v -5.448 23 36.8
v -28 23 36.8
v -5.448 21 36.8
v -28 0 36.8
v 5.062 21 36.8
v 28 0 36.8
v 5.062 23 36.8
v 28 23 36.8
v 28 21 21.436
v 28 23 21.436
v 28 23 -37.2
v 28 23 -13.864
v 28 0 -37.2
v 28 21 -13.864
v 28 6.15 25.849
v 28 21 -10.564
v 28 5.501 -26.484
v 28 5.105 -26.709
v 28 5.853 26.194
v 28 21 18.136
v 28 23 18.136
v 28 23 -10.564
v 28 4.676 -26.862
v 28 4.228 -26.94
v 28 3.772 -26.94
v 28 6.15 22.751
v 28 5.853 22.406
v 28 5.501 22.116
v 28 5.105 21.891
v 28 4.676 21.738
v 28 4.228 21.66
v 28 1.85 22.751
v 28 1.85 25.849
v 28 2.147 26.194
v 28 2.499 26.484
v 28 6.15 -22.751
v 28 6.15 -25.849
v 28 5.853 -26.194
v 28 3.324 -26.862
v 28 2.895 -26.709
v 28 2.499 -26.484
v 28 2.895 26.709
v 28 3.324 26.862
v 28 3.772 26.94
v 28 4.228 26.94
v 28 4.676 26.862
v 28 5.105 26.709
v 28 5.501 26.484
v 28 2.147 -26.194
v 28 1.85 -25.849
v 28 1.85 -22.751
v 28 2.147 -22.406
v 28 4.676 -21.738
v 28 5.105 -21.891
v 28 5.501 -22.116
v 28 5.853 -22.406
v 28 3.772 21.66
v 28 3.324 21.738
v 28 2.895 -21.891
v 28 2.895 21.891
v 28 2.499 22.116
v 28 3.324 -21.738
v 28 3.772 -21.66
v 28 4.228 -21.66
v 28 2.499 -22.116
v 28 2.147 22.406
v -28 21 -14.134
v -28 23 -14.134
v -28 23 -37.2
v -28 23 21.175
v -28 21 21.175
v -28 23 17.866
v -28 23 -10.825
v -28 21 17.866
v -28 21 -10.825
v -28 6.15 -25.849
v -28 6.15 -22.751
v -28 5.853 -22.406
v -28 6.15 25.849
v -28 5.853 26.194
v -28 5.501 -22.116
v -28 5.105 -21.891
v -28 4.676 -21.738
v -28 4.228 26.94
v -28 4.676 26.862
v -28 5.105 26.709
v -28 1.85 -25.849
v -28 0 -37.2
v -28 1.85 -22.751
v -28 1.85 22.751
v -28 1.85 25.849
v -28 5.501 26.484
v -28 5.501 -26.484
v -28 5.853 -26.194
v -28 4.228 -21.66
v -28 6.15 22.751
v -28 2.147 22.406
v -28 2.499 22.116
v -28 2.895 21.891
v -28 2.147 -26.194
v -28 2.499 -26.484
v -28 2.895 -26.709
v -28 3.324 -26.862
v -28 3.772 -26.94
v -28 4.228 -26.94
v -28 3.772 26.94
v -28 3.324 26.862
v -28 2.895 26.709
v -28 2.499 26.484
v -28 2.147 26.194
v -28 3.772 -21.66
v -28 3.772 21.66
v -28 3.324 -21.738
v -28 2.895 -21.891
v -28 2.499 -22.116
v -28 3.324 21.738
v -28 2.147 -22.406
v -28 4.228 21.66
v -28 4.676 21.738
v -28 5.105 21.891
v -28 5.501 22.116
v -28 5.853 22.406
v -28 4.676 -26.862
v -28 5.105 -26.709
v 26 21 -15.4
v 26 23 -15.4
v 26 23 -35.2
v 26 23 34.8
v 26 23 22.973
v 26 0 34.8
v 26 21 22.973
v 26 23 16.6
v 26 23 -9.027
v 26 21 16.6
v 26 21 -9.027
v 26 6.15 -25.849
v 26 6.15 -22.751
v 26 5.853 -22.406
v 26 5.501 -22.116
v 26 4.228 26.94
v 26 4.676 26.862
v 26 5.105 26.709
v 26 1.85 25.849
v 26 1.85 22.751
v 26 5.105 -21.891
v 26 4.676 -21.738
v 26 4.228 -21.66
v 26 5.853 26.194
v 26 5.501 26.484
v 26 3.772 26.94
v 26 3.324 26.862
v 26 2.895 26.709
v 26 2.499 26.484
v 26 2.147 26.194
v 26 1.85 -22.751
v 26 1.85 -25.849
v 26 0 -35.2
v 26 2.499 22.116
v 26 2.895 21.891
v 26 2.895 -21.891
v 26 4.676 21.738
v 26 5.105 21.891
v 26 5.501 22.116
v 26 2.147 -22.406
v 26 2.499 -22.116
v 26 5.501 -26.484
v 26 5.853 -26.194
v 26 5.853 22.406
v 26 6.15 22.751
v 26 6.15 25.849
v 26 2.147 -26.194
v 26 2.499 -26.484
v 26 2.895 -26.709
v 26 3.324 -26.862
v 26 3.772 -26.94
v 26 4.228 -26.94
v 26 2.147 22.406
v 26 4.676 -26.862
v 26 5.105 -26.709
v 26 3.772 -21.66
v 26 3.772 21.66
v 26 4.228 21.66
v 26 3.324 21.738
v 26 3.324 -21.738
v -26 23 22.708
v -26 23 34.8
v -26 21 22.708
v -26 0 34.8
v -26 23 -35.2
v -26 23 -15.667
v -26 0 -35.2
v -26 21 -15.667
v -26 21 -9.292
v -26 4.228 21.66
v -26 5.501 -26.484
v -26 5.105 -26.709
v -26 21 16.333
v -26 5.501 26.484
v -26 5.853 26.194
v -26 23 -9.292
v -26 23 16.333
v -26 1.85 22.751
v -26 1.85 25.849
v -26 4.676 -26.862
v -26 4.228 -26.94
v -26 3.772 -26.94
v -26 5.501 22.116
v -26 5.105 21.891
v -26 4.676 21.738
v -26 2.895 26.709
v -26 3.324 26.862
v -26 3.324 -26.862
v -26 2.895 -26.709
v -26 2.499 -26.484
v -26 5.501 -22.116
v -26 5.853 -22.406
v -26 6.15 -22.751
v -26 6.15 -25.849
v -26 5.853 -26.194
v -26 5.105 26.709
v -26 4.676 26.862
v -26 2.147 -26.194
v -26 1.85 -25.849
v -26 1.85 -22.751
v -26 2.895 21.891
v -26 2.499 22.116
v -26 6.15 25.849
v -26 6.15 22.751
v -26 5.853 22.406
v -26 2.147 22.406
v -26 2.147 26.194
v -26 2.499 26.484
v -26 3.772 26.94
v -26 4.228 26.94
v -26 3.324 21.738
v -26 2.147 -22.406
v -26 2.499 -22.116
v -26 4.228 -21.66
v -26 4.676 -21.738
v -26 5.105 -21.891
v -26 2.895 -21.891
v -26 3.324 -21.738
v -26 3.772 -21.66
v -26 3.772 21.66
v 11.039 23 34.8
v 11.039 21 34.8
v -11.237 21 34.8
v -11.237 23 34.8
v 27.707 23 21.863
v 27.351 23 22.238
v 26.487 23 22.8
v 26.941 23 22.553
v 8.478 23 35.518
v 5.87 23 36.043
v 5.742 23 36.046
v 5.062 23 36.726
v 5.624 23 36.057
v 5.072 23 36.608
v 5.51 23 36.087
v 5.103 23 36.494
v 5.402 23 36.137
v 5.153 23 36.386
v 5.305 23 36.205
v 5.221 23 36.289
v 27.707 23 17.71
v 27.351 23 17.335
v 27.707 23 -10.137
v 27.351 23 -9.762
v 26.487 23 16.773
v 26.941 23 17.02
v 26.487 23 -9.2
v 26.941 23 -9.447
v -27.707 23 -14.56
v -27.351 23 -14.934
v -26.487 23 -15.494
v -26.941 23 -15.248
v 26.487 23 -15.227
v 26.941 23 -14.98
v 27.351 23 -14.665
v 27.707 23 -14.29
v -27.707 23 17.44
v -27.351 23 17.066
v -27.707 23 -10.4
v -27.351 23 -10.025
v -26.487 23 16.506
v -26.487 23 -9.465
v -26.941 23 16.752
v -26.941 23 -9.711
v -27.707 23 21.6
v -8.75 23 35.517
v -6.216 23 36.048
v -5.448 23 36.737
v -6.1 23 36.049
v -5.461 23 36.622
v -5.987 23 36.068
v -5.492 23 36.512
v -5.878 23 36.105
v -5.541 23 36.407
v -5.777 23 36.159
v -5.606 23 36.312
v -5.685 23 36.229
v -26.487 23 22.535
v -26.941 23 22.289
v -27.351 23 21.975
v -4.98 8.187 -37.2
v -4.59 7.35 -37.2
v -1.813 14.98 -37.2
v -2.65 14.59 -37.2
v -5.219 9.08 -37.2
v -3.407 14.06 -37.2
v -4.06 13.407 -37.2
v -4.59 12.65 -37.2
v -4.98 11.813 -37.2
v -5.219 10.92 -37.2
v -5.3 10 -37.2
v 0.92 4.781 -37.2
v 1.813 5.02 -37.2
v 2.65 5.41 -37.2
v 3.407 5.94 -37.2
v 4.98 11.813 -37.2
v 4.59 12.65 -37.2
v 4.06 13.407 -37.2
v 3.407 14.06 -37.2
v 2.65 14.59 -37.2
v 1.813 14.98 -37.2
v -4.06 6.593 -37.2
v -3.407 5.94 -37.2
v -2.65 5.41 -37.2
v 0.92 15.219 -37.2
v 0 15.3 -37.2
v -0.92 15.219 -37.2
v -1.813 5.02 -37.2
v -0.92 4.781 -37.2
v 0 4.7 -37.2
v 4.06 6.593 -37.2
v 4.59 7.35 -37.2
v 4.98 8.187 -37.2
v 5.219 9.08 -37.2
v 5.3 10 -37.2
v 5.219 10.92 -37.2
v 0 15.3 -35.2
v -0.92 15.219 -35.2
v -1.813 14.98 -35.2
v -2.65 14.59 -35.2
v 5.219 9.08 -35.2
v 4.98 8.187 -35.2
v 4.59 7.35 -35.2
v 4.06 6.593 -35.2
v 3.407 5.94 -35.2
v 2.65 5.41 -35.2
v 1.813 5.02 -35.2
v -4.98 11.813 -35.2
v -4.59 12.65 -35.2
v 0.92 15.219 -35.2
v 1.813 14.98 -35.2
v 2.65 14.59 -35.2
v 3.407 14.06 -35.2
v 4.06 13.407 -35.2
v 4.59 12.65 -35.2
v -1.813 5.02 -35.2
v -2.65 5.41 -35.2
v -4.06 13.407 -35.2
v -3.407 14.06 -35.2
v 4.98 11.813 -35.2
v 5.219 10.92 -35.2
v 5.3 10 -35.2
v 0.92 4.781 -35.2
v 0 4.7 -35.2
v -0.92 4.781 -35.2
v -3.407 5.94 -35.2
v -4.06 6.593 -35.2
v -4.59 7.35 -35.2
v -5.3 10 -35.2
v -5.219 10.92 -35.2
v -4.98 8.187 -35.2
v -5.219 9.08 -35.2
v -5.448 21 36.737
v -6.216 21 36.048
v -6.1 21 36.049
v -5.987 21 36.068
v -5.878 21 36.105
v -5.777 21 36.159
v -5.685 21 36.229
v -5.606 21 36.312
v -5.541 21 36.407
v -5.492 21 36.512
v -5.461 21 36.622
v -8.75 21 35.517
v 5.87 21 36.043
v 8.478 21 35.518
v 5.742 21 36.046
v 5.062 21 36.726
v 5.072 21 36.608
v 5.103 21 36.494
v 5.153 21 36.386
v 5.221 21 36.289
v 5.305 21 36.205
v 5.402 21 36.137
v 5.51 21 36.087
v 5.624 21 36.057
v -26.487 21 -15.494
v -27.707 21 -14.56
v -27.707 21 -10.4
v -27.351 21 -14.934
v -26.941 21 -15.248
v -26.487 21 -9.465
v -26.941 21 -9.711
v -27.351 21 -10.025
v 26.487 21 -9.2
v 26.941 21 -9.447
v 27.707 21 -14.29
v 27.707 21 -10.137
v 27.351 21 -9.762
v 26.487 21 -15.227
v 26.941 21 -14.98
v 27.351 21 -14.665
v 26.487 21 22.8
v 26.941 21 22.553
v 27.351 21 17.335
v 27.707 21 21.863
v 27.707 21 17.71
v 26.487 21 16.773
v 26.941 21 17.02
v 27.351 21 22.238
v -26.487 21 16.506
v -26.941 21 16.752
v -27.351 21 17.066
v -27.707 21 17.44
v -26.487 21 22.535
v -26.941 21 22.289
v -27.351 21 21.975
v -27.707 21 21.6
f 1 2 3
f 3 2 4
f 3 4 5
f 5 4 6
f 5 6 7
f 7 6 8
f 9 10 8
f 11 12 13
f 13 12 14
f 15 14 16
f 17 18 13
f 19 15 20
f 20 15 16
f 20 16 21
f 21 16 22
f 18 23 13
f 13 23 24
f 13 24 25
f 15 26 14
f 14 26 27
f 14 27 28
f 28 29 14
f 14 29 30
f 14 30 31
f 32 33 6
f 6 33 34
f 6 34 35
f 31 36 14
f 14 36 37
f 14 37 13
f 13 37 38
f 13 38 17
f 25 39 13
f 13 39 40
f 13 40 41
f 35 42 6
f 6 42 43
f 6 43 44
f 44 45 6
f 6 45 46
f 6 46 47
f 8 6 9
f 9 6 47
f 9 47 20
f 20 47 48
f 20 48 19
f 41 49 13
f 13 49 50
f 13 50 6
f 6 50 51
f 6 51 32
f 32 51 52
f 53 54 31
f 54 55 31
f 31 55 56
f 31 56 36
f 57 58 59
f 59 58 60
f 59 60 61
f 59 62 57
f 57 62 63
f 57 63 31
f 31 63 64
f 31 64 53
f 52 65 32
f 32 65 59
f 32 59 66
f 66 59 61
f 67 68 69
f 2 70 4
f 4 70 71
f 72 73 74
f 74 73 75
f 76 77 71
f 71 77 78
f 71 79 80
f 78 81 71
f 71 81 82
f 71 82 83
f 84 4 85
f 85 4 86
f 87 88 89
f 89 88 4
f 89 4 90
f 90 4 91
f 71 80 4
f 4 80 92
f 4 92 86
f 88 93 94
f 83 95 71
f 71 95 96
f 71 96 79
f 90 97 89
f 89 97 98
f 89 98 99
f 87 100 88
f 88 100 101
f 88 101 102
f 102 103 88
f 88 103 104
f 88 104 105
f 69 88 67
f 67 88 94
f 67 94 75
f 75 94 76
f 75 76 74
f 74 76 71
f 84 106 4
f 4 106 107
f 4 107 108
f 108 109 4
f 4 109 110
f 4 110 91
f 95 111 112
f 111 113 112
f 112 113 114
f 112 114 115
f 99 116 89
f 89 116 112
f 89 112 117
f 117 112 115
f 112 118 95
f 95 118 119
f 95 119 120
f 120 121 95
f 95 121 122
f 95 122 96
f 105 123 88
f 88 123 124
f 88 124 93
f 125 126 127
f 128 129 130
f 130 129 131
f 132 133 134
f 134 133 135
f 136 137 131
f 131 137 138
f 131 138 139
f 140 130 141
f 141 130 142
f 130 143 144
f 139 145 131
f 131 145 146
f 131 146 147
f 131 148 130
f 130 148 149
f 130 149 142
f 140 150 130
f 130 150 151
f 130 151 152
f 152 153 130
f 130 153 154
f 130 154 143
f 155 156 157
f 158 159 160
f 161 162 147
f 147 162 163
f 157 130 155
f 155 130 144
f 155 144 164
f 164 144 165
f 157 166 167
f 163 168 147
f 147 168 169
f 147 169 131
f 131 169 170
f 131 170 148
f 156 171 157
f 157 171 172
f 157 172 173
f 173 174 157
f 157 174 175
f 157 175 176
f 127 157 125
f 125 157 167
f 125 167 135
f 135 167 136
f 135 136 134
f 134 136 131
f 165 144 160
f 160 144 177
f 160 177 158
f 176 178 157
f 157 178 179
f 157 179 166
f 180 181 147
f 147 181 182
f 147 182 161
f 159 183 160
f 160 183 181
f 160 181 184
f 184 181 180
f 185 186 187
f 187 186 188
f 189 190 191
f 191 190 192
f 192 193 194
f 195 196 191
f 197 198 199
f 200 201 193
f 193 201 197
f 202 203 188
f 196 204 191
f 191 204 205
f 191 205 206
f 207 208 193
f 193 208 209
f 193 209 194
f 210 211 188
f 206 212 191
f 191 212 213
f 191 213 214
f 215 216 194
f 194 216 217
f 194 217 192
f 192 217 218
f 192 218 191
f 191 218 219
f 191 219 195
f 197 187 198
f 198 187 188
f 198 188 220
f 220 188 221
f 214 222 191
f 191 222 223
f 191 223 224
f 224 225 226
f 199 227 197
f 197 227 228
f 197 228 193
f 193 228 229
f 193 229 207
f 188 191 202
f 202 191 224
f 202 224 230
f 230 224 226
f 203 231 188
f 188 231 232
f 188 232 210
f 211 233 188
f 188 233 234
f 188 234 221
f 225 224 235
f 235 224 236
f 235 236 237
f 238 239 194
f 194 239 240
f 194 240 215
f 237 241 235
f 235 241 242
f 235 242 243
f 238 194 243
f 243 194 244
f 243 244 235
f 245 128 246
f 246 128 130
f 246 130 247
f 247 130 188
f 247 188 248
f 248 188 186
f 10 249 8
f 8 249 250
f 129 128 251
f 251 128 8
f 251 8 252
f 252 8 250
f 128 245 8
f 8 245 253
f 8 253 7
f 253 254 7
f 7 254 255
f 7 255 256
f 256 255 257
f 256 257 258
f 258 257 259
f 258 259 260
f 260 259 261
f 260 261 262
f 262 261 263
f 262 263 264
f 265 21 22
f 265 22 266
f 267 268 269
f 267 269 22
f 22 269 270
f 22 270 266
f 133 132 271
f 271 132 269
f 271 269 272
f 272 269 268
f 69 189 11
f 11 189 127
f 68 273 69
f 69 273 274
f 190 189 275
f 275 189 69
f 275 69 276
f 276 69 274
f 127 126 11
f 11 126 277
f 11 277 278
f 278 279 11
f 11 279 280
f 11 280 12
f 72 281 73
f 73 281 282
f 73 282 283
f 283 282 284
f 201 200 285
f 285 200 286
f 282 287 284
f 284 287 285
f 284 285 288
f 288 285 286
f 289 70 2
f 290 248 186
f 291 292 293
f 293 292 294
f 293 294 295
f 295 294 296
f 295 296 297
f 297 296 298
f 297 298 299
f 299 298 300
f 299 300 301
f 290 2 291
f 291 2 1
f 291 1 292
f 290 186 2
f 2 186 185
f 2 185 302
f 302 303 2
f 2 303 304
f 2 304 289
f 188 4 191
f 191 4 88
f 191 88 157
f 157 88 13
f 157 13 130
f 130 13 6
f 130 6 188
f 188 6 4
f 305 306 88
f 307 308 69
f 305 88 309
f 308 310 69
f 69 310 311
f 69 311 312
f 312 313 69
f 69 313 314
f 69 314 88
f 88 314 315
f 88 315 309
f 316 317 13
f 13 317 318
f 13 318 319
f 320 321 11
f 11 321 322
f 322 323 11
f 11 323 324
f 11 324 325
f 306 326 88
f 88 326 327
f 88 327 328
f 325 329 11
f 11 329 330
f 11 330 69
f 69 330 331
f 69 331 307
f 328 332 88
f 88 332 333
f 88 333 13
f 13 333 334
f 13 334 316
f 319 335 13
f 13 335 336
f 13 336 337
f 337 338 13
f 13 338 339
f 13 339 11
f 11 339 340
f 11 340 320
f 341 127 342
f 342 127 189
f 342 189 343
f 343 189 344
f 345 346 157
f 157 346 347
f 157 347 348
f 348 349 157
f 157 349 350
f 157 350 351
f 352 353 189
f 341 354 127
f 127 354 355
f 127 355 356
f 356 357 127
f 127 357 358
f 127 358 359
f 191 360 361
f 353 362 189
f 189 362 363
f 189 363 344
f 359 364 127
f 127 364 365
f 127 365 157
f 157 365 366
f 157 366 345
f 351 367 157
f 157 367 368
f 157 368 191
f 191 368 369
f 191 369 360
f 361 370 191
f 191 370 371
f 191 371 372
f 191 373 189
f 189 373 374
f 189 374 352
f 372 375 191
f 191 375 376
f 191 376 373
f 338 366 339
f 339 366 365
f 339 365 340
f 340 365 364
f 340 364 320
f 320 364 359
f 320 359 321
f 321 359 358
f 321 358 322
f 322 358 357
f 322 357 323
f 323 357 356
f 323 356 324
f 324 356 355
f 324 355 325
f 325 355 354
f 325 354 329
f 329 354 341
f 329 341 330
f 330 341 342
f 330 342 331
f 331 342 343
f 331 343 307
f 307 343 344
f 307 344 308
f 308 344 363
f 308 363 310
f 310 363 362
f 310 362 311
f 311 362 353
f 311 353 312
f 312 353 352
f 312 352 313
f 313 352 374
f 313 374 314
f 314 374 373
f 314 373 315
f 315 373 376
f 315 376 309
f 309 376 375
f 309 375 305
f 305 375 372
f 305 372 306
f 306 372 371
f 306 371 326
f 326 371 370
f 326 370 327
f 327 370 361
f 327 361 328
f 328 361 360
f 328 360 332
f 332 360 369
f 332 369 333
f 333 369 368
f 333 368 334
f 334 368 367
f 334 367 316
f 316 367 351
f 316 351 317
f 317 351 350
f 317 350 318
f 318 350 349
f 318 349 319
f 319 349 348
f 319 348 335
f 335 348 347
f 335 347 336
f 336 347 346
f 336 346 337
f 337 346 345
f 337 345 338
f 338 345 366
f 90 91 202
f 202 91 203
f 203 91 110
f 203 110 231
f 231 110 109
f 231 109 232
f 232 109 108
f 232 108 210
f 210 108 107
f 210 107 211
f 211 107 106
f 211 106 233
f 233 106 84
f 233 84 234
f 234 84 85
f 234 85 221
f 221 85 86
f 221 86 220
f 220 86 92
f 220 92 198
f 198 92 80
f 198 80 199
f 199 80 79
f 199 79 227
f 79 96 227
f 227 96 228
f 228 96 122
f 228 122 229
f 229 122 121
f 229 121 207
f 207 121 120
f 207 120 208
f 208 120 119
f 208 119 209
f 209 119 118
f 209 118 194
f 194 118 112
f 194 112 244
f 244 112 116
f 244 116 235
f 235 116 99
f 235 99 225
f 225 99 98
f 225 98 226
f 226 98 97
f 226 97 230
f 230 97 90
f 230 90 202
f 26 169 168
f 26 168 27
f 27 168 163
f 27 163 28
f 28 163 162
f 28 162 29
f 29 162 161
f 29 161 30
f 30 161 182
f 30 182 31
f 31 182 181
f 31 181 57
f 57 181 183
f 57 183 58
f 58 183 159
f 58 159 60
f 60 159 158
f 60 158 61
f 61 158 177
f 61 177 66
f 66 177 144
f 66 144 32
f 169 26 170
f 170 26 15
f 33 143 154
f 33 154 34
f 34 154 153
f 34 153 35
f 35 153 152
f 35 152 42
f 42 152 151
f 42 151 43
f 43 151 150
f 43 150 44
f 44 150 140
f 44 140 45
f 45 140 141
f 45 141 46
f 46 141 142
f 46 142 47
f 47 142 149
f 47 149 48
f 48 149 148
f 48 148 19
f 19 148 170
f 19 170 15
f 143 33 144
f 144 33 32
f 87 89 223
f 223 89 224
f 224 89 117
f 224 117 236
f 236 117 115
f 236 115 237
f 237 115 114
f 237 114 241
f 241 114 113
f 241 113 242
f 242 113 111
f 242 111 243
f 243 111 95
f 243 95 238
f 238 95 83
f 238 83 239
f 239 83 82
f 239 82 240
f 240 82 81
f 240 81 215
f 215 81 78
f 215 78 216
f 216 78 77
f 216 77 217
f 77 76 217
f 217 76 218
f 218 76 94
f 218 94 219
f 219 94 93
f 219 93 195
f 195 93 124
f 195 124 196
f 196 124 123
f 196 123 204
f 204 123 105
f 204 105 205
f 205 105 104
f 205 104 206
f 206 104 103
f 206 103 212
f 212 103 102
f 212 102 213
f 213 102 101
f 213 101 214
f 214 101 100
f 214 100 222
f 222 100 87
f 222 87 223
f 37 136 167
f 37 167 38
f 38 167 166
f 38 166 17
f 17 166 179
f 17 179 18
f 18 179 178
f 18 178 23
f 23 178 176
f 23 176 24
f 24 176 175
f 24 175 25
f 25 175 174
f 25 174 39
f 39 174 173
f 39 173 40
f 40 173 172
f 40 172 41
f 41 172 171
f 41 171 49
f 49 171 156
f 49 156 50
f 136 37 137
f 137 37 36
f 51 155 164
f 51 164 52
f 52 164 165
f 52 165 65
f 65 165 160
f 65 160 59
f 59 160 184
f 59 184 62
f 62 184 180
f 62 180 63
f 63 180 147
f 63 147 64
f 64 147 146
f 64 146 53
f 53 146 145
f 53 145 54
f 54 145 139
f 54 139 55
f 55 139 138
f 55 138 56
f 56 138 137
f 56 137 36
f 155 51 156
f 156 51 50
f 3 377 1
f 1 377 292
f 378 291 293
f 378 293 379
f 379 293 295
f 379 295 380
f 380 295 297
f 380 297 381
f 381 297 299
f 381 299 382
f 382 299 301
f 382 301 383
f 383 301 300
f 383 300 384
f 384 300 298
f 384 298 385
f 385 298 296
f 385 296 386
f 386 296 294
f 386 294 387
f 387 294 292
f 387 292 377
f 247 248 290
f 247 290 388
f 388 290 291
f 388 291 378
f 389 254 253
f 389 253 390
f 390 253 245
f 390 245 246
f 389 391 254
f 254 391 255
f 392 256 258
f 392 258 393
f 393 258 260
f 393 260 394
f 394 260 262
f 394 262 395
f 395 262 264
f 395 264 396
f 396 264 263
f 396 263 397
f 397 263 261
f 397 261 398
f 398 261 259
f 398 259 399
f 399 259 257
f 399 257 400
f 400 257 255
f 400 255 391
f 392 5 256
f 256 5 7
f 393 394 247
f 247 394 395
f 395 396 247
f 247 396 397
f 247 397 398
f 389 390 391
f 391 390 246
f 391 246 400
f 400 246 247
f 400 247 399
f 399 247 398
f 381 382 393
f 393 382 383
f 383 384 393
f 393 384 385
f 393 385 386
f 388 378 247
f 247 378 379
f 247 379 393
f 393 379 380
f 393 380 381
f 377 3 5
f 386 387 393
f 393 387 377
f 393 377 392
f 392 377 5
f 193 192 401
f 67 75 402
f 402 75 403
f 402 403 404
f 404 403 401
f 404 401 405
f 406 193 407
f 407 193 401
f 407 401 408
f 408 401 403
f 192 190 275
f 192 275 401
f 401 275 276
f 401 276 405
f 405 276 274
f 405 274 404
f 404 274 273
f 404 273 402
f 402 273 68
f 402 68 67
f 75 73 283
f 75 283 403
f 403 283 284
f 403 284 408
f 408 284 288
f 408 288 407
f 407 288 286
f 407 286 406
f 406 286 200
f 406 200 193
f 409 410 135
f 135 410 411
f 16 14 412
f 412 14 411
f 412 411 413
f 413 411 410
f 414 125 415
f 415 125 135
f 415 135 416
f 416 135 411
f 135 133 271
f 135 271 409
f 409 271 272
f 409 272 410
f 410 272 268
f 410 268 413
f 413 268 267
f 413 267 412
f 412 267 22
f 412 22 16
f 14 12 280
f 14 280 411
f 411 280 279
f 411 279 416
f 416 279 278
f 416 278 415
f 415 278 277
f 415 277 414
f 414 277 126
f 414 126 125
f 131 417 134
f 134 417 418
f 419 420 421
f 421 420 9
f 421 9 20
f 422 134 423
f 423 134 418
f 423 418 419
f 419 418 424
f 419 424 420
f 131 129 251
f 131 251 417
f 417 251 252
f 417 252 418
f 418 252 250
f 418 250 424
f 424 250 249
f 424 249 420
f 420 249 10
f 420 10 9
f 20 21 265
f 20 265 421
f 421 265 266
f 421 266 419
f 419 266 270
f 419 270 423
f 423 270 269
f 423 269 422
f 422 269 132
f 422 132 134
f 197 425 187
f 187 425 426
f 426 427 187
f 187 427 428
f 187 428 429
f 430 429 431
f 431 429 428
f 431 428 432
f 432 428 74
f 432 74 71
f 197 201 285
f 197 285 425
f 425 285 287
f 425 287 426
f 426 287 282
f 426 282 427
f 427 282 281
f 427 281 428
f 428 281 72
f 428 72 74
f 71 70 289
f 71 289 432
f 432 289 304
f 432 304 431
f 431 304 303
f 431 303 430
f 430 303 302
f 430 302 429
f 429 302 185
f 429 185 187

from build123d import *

# Parameters (mm, degrees)
BOSS_EXTRUDE1_DEPTH = 13
BOSS_EXTRUDE3_DEPTH = 2.3
BOSS_EXTRUDE4_DEPTH = 2.3
SPLIT1_START        = -4.6
SPLIT1_DEPTH        = 4.6
SKETCH9_W           = 56.929943861
SKETCH9_H           = 73.17042397
BOSS_EXTRUDE5_DEPTH = 34
SKETCH10_W          = 56
SKETCH10_H          = 74
SKETCH10_W_2        = 52
SKETCH10_H_2        = 70
BOSS_EXTRUDE6_DEPTH = 10
SKETCH11_W          = 56
SKETCH11_H          = 74
SKETCH11_W_2        = 52
SKETCH11_H_2        = 70
BOSS_EXTRUDE7_DEPTH = 23
CUT_EXTRUDE1_START  = -74
SKETCH7_R           = 5.3
CUT_EXTRUDE1_DEPTH  = 2
CUT_EXTRUDE2_DEPTH  = 70
CAVITY1_START       = 21.3871
CAVITY1_DEPTH       = 1.6129
SKETCH12_R          = 3.3
CUT_EXTRUDE3_DEPTH  = 2


# Read off the part's stored shape, not the designer's step: Split1, Cavity1
with BuildPart() as part:
    # Sketch1 → Boss-Extrude1 (new body)
    with BuildSketch(Plane(origin=(0, 0, 0), x_dir=(1, 0, 0), z_dir=(0, 1, 0))):
        Polygon((28, 37.2), (-28, 37.2), (-28, -36.8), (28, -36.8), (28, 0), align=None)
        Polygon((26, 0), (26, 35.2), (-26, 35.2), (-26, -34.8), (26, -34.8), align=None, mode=Mode.SUBTRACT)
    extrude(amount=BOSS_EXTRUDE1_DEPTH)


with BuildPart() as body_2:
    # Sketch5 → Boss-Extrude3 (new body)
    with BuildSketch(Plane.XZ):
        with BuildLine():
            Line((-28, 36.8), (28, 36.8))
            Line((28, 36.8), (28, -37.2))
            Line((28, -37.2), (25, -37.2))
            Line((25, -37.2), (25, -9.8))
            ThreePointArc((25, -9.8), (0, 15.2), (-25, -9.8))
            Line((-25, -9.8), (-25, -37.2))
            Line((-25, -37.2), (-28, -37.2))
            Line((-28, -37.2), (-28, 36.8))
        make_face()
    extrude(amount=BOSS_EXTRUDE3_DEPTH)

    # Sketch6 → Boss-Extrude4 (add)
    with BuildSketch(Plane.XZ.offset(2.3)):
        with BuildLine():
            Line((22.7, -37.2), (28, -37.2))
            Line((28, -37.2), (28, 36.8))
            Line((28, 36.8), (-28, 36.8))
            Line((-28, 36.8), (-28, -37.2))
            Line((-28, -37.2), (-22.7, -37.2))
            Line((-22.7, -37.2), (-22.7, -9.8))
            ThreePointArc((-22.7, -9.8), (0, 12.9), (22.7, -9.8))
            Line((22.7, -9.8), (22.7, -37.2))
        make_face()
    extrude(amount=BOSS_EXTRUDE4_DEPTH)

    # Split1 outline → Split1 (cut)
    with BuildSketch(Plane(origin=(0, 0, 0), x_dir=(1, 0, 0), z_dir=(0, 1, 0)).offset(SPLIT1_START)):
        with BuildLine():
            Line((-28, -36.8), (28, -36.8))
            Line((28, -36.8), (28, 37.2))
            Line((28, 37.2), (22.7, 37.2))
            Line((22.7, 37.2), (22.7, 9.8))
            ThreePointArc((22.7, 9.8), (0, -12.9), (-22.7, 9.8))
            Line((-22.7, 9.8), (-22.7, 37.2))
            Line((-22.7, 37.2), (-28, 37.2))
            Line((-28, 37.2), (-28, -36.8))
        make_face()
    extrude(amount=SPLIT1_DEPTH, mode=Mode.SUBTRACT)


with BuildPart() as body_2_2:
    # Sketch9 → Boss-Extrude5 (new body)
    with BuildSketch(Plane(origin=(0, 13, 0), x_dir=(-1, 0, 0), z_dir=(0, 1, 0))):
        with Locations((0.264790437, -0.308922176)):
            Rectangle(SKETCH9_W, SKETCH9_H)
    extrude(amount=BOSS_EXTRUDE5_DEPTH)


with BuildPart() as part_1:
    add(part.part)

    # Combine1: cut body 2 2
    add(body_2_2.part, mode=Mode.SUBTRACT)

    # Sketch10 → Boss-Extrude6 (add)
    with BuildSketch(Plane(origin=(0, 13, 0), x_dir=(1, 0, 0), z_dir=(0, 1, 0))):
        with Locations((0, 0.2)):
            Rectangle(SKETCH10_W, SKETCH10_H)
        with Locations((0, 0.2)):
            Rectangle(SKETCH10_W_2, SKETCH10_H_2, mode=Mode.SUBTRACT)
    extrude(amount=BOSS_EXTRUDE6_DEPTH)

    # Sketch11 → Boss-Extrude7 (add)
    with BuildSketch(Plane(origin=(0, 23, 0), x_dir=(1, 0, 0), z_dir=(0, 1, 0))):
        with Locations((0, 0.2)):
            Rectangle(SKETCH11_W, SKETCH11_H)
        with Locations((0, 0.2)):
            Rectangle(SKETCH11_W_2, SKETCH11_H_2, mode=Mode.SUBTRACT)
    extrude(amount=-BOSS_EXTRUDE7_DEPTH)

    # Sketch7 → Cut-Extrude1 (cut)
    with BuildSketch(Plane.XY.offset(36.8).offset(CUT_EXTRUDE1_START)):
        with Locations((0, 10)):
            Circle(SKETCH7_R)
    extrude(amount=CUT_EXTRUDE1_DEPTH, mode=Mode.SUBTRACT)

    # Sketch8 → Cut-Extrude2 (cut)
    with BuildSketch(Plane.ZY.offset(28)):
        with BuildLine():
            Line((22.750806662, 6.15), (25.849193338, 6.15))
            ThreePointArc((25.849193338, 6.15), (26.95, 4), (25.849193338, 1.85))
            Line((25.849193338, 1.85), (22.750806662, 1.85))
            ThreePointArc((22.750806662, 1.85), (21.65, 4), (22.750806662, 6.15))
        make_face()
        with BuildLine():
            Line((-25.849193338, 6.15), (-22.750806662, 6.15))
            ThreePointArc((-22.750806662, 6.15), (-21.65, 4), (-22.750806662, 1.85))
            Line((-22.750806662, 1.85), (-25.849193338, 1.85))
            ThreePointArc((-25.849193338, 1.85), (-26.95, 4), (-25.849193338, 6.15))
        make_face()
    extrude(amount=-CUT_EXTRUDE2_DEPTH, mode=Mode.SUBTRACT)

    # Cavity1 outline → Cavity1 (cut)
    with BuildSketch(Plane(origin=(0, 0, 0), x_dir=(1, 0, 0), z_dir=(0, 1, 0)).offset(CAVITY1_START)):
        with BuildLine():
            ThreePointArc((-28, -20.441285249), (-27.241688626, -21.665903715), (-26, -22.395928291))
            Line((-26, -22.395928291), (-26, -20.987393289))
            ThreePointArc((-26, -20.987393289), (-27.027836237, -19.527994439), (-26, -18.068595588))
            Line((-26, -18.068595588), (-26, -16.644860586))
            ThreePointArc((-26, -16.644860586), (-27.241688626, -17.374885162), (-28, -18.599503628))
            Line((-28, -18.599503628), (-28, -20.441285249))
        make_face()
        with BuildLine():
            Line((10.014130308, -34.8), (-10.23489996, -34.8))
            ThreePointArc((-10.23489996, -34.8), (-8.230538078, -35.333645486), (-6.197835522, -35.746397685))
            ThreePointArc((-6.197835522, -35.746397685), (-5.469873643, -36.018934875), (-5.147839508, -36.726394439))
            ThreePointArc((-5.147839508, -36.726394439), (-5.146895808, -36.763245519), (-5.144067255, -36.8))
            Line((-5.144067255, -36.8), (4.758391535, -36.8))
            ThreePointArc((4.758391535, -36.8), (4.761220088, -36.763245519), (4.762163763, -36.726394439))
            ThreePointArc((4.762163763, -36.726394439), (5.049199117, -36.033429793), (5.742163763, -35.746394439))
            Line((5.742163763, -35.746394439), (5.822163763, -35.746394439))
            ThreePointArc((5.822163763, -35.746394439), (7.93260454, -35.337235399), (10.014130308, -34.8))
        make_face()
        with BuildLine():
            Line((-28, 13.400496372), (-28, 11.558714751))
            ThreePointArc((-28, 11.558714751), (-27.241688626, 10.334096285), (-26, 9.604071709))
            Line((-26, 9.604071709), (-26, 11.033690962))
            ThreePointArc((-26, 11.033690962), (-26.997836237, 12.482005561), (-26, 13.930320161))
            Line((-26, 13.930320161), (-26, 15.355139414))
            ThreePointArc((-26, 15.355139414), (-27.241688626, 14.625114838), (-28, 13.400496372))
        make_face()
        with BuildLine():
            Line((26, -21.24169048), (26, -22.661132164))
            ThreePointArc((26, -22.661132164), (27.243136742, -21.927868824), (28, -20.698957885))
            Line((28, -20.698957885), (28, -18.873830992))
            ThreePointArc((28, -18.873830992), (27.243136742, -17.644920054), (26, -16.911656713))
            Line((26, -16.911656713), (26, -18.334298397))
            ThreePointArc((26, -18.334298397), (27.012163763, -19.787994439), (26, -21.24169048))
        make_face()
        with BuildLine():
            ThreePointArc((26, 9.338867836), (27.243136742, 10.072131176), (28, 11.301042115))
            Line((28, 11.301042115), (28, 13.126169008))
            ThreePointArc((28, 13.126169008), (27.243136742, 14.355079946), (26, 15.088343287))
            Line((26, 15.088343287), (26, 13.682945544))
            ThreePointArc((26, 13.682945544), (27.032163763, 12.222005562), (26, 10.761065579))
            Line((26, 10.761065579), (26, 9.338867836))
        make_face()
    extrude(amount=CAVITY1_DEPTH, mode=Mode.SUBTRACT)

    # Sketch12 → Cut-Extrude3 (cut)
    with BuildSketch(Plane(origin=(0, 23, 0), x_dir=(1, 0, 0), z_dir=(0, 1, 0))):
        with Locations((-25.144836237, 12.479605561)):
            Circle(SKETCH12_R)
        with Locations((25.142163763, 12.213605561)):
            Circle(SKETCH12_R)
        with Locations((25.142163763, -19.786394439)):
            Circle(SKETCH12_R)
        with Locations((-25.144836237, -19.520394439)):
            Circle(SKETCH12_R)
        with BuildLine():
            Line((-5.144067255, -36.8), (4.758391535, -36.8))
            Line((4.758391535, -36.8), (5.062163763, -36.8))
            Line((5.062163763, -36.8), (5.062163763, -36.726394439))
            ThreePointArc((5.062163763, -36.726394439), (5.261331152, -36.245561827), (5.742163763, -36.046394439))
            Line((5.742163763, -36.046394439), (5.870241965, -36.042516857))
            ThreePointArc((5.870241965, -36.042516857), (8.935204114, -35.405039737), (11.932081344, -34.5))
            Line((11.932081344, -34.5), (-12.110811403, -34.5))
            ThreePointArc((-12.110811403, -34.5), (-9.196992953, -35.402634382), (-6.215562743, -36.047739555))
            ThreePointArc((-6.215562743, -36.047739555), (-5.68493716, -36.228763375), (-5.447661294, -36.736733155))
            Line((-5.447661294, -36.736733155), (-5.447661294, -36.8))
            Line((-5.447661294, -36.8), (-5.144067255, -36.8))
        make_face()
    extrude(amount=-CUT_EXTRUDE3_DEPTH, mode=Mode.SUBTRACT)


solid = part_1.part
